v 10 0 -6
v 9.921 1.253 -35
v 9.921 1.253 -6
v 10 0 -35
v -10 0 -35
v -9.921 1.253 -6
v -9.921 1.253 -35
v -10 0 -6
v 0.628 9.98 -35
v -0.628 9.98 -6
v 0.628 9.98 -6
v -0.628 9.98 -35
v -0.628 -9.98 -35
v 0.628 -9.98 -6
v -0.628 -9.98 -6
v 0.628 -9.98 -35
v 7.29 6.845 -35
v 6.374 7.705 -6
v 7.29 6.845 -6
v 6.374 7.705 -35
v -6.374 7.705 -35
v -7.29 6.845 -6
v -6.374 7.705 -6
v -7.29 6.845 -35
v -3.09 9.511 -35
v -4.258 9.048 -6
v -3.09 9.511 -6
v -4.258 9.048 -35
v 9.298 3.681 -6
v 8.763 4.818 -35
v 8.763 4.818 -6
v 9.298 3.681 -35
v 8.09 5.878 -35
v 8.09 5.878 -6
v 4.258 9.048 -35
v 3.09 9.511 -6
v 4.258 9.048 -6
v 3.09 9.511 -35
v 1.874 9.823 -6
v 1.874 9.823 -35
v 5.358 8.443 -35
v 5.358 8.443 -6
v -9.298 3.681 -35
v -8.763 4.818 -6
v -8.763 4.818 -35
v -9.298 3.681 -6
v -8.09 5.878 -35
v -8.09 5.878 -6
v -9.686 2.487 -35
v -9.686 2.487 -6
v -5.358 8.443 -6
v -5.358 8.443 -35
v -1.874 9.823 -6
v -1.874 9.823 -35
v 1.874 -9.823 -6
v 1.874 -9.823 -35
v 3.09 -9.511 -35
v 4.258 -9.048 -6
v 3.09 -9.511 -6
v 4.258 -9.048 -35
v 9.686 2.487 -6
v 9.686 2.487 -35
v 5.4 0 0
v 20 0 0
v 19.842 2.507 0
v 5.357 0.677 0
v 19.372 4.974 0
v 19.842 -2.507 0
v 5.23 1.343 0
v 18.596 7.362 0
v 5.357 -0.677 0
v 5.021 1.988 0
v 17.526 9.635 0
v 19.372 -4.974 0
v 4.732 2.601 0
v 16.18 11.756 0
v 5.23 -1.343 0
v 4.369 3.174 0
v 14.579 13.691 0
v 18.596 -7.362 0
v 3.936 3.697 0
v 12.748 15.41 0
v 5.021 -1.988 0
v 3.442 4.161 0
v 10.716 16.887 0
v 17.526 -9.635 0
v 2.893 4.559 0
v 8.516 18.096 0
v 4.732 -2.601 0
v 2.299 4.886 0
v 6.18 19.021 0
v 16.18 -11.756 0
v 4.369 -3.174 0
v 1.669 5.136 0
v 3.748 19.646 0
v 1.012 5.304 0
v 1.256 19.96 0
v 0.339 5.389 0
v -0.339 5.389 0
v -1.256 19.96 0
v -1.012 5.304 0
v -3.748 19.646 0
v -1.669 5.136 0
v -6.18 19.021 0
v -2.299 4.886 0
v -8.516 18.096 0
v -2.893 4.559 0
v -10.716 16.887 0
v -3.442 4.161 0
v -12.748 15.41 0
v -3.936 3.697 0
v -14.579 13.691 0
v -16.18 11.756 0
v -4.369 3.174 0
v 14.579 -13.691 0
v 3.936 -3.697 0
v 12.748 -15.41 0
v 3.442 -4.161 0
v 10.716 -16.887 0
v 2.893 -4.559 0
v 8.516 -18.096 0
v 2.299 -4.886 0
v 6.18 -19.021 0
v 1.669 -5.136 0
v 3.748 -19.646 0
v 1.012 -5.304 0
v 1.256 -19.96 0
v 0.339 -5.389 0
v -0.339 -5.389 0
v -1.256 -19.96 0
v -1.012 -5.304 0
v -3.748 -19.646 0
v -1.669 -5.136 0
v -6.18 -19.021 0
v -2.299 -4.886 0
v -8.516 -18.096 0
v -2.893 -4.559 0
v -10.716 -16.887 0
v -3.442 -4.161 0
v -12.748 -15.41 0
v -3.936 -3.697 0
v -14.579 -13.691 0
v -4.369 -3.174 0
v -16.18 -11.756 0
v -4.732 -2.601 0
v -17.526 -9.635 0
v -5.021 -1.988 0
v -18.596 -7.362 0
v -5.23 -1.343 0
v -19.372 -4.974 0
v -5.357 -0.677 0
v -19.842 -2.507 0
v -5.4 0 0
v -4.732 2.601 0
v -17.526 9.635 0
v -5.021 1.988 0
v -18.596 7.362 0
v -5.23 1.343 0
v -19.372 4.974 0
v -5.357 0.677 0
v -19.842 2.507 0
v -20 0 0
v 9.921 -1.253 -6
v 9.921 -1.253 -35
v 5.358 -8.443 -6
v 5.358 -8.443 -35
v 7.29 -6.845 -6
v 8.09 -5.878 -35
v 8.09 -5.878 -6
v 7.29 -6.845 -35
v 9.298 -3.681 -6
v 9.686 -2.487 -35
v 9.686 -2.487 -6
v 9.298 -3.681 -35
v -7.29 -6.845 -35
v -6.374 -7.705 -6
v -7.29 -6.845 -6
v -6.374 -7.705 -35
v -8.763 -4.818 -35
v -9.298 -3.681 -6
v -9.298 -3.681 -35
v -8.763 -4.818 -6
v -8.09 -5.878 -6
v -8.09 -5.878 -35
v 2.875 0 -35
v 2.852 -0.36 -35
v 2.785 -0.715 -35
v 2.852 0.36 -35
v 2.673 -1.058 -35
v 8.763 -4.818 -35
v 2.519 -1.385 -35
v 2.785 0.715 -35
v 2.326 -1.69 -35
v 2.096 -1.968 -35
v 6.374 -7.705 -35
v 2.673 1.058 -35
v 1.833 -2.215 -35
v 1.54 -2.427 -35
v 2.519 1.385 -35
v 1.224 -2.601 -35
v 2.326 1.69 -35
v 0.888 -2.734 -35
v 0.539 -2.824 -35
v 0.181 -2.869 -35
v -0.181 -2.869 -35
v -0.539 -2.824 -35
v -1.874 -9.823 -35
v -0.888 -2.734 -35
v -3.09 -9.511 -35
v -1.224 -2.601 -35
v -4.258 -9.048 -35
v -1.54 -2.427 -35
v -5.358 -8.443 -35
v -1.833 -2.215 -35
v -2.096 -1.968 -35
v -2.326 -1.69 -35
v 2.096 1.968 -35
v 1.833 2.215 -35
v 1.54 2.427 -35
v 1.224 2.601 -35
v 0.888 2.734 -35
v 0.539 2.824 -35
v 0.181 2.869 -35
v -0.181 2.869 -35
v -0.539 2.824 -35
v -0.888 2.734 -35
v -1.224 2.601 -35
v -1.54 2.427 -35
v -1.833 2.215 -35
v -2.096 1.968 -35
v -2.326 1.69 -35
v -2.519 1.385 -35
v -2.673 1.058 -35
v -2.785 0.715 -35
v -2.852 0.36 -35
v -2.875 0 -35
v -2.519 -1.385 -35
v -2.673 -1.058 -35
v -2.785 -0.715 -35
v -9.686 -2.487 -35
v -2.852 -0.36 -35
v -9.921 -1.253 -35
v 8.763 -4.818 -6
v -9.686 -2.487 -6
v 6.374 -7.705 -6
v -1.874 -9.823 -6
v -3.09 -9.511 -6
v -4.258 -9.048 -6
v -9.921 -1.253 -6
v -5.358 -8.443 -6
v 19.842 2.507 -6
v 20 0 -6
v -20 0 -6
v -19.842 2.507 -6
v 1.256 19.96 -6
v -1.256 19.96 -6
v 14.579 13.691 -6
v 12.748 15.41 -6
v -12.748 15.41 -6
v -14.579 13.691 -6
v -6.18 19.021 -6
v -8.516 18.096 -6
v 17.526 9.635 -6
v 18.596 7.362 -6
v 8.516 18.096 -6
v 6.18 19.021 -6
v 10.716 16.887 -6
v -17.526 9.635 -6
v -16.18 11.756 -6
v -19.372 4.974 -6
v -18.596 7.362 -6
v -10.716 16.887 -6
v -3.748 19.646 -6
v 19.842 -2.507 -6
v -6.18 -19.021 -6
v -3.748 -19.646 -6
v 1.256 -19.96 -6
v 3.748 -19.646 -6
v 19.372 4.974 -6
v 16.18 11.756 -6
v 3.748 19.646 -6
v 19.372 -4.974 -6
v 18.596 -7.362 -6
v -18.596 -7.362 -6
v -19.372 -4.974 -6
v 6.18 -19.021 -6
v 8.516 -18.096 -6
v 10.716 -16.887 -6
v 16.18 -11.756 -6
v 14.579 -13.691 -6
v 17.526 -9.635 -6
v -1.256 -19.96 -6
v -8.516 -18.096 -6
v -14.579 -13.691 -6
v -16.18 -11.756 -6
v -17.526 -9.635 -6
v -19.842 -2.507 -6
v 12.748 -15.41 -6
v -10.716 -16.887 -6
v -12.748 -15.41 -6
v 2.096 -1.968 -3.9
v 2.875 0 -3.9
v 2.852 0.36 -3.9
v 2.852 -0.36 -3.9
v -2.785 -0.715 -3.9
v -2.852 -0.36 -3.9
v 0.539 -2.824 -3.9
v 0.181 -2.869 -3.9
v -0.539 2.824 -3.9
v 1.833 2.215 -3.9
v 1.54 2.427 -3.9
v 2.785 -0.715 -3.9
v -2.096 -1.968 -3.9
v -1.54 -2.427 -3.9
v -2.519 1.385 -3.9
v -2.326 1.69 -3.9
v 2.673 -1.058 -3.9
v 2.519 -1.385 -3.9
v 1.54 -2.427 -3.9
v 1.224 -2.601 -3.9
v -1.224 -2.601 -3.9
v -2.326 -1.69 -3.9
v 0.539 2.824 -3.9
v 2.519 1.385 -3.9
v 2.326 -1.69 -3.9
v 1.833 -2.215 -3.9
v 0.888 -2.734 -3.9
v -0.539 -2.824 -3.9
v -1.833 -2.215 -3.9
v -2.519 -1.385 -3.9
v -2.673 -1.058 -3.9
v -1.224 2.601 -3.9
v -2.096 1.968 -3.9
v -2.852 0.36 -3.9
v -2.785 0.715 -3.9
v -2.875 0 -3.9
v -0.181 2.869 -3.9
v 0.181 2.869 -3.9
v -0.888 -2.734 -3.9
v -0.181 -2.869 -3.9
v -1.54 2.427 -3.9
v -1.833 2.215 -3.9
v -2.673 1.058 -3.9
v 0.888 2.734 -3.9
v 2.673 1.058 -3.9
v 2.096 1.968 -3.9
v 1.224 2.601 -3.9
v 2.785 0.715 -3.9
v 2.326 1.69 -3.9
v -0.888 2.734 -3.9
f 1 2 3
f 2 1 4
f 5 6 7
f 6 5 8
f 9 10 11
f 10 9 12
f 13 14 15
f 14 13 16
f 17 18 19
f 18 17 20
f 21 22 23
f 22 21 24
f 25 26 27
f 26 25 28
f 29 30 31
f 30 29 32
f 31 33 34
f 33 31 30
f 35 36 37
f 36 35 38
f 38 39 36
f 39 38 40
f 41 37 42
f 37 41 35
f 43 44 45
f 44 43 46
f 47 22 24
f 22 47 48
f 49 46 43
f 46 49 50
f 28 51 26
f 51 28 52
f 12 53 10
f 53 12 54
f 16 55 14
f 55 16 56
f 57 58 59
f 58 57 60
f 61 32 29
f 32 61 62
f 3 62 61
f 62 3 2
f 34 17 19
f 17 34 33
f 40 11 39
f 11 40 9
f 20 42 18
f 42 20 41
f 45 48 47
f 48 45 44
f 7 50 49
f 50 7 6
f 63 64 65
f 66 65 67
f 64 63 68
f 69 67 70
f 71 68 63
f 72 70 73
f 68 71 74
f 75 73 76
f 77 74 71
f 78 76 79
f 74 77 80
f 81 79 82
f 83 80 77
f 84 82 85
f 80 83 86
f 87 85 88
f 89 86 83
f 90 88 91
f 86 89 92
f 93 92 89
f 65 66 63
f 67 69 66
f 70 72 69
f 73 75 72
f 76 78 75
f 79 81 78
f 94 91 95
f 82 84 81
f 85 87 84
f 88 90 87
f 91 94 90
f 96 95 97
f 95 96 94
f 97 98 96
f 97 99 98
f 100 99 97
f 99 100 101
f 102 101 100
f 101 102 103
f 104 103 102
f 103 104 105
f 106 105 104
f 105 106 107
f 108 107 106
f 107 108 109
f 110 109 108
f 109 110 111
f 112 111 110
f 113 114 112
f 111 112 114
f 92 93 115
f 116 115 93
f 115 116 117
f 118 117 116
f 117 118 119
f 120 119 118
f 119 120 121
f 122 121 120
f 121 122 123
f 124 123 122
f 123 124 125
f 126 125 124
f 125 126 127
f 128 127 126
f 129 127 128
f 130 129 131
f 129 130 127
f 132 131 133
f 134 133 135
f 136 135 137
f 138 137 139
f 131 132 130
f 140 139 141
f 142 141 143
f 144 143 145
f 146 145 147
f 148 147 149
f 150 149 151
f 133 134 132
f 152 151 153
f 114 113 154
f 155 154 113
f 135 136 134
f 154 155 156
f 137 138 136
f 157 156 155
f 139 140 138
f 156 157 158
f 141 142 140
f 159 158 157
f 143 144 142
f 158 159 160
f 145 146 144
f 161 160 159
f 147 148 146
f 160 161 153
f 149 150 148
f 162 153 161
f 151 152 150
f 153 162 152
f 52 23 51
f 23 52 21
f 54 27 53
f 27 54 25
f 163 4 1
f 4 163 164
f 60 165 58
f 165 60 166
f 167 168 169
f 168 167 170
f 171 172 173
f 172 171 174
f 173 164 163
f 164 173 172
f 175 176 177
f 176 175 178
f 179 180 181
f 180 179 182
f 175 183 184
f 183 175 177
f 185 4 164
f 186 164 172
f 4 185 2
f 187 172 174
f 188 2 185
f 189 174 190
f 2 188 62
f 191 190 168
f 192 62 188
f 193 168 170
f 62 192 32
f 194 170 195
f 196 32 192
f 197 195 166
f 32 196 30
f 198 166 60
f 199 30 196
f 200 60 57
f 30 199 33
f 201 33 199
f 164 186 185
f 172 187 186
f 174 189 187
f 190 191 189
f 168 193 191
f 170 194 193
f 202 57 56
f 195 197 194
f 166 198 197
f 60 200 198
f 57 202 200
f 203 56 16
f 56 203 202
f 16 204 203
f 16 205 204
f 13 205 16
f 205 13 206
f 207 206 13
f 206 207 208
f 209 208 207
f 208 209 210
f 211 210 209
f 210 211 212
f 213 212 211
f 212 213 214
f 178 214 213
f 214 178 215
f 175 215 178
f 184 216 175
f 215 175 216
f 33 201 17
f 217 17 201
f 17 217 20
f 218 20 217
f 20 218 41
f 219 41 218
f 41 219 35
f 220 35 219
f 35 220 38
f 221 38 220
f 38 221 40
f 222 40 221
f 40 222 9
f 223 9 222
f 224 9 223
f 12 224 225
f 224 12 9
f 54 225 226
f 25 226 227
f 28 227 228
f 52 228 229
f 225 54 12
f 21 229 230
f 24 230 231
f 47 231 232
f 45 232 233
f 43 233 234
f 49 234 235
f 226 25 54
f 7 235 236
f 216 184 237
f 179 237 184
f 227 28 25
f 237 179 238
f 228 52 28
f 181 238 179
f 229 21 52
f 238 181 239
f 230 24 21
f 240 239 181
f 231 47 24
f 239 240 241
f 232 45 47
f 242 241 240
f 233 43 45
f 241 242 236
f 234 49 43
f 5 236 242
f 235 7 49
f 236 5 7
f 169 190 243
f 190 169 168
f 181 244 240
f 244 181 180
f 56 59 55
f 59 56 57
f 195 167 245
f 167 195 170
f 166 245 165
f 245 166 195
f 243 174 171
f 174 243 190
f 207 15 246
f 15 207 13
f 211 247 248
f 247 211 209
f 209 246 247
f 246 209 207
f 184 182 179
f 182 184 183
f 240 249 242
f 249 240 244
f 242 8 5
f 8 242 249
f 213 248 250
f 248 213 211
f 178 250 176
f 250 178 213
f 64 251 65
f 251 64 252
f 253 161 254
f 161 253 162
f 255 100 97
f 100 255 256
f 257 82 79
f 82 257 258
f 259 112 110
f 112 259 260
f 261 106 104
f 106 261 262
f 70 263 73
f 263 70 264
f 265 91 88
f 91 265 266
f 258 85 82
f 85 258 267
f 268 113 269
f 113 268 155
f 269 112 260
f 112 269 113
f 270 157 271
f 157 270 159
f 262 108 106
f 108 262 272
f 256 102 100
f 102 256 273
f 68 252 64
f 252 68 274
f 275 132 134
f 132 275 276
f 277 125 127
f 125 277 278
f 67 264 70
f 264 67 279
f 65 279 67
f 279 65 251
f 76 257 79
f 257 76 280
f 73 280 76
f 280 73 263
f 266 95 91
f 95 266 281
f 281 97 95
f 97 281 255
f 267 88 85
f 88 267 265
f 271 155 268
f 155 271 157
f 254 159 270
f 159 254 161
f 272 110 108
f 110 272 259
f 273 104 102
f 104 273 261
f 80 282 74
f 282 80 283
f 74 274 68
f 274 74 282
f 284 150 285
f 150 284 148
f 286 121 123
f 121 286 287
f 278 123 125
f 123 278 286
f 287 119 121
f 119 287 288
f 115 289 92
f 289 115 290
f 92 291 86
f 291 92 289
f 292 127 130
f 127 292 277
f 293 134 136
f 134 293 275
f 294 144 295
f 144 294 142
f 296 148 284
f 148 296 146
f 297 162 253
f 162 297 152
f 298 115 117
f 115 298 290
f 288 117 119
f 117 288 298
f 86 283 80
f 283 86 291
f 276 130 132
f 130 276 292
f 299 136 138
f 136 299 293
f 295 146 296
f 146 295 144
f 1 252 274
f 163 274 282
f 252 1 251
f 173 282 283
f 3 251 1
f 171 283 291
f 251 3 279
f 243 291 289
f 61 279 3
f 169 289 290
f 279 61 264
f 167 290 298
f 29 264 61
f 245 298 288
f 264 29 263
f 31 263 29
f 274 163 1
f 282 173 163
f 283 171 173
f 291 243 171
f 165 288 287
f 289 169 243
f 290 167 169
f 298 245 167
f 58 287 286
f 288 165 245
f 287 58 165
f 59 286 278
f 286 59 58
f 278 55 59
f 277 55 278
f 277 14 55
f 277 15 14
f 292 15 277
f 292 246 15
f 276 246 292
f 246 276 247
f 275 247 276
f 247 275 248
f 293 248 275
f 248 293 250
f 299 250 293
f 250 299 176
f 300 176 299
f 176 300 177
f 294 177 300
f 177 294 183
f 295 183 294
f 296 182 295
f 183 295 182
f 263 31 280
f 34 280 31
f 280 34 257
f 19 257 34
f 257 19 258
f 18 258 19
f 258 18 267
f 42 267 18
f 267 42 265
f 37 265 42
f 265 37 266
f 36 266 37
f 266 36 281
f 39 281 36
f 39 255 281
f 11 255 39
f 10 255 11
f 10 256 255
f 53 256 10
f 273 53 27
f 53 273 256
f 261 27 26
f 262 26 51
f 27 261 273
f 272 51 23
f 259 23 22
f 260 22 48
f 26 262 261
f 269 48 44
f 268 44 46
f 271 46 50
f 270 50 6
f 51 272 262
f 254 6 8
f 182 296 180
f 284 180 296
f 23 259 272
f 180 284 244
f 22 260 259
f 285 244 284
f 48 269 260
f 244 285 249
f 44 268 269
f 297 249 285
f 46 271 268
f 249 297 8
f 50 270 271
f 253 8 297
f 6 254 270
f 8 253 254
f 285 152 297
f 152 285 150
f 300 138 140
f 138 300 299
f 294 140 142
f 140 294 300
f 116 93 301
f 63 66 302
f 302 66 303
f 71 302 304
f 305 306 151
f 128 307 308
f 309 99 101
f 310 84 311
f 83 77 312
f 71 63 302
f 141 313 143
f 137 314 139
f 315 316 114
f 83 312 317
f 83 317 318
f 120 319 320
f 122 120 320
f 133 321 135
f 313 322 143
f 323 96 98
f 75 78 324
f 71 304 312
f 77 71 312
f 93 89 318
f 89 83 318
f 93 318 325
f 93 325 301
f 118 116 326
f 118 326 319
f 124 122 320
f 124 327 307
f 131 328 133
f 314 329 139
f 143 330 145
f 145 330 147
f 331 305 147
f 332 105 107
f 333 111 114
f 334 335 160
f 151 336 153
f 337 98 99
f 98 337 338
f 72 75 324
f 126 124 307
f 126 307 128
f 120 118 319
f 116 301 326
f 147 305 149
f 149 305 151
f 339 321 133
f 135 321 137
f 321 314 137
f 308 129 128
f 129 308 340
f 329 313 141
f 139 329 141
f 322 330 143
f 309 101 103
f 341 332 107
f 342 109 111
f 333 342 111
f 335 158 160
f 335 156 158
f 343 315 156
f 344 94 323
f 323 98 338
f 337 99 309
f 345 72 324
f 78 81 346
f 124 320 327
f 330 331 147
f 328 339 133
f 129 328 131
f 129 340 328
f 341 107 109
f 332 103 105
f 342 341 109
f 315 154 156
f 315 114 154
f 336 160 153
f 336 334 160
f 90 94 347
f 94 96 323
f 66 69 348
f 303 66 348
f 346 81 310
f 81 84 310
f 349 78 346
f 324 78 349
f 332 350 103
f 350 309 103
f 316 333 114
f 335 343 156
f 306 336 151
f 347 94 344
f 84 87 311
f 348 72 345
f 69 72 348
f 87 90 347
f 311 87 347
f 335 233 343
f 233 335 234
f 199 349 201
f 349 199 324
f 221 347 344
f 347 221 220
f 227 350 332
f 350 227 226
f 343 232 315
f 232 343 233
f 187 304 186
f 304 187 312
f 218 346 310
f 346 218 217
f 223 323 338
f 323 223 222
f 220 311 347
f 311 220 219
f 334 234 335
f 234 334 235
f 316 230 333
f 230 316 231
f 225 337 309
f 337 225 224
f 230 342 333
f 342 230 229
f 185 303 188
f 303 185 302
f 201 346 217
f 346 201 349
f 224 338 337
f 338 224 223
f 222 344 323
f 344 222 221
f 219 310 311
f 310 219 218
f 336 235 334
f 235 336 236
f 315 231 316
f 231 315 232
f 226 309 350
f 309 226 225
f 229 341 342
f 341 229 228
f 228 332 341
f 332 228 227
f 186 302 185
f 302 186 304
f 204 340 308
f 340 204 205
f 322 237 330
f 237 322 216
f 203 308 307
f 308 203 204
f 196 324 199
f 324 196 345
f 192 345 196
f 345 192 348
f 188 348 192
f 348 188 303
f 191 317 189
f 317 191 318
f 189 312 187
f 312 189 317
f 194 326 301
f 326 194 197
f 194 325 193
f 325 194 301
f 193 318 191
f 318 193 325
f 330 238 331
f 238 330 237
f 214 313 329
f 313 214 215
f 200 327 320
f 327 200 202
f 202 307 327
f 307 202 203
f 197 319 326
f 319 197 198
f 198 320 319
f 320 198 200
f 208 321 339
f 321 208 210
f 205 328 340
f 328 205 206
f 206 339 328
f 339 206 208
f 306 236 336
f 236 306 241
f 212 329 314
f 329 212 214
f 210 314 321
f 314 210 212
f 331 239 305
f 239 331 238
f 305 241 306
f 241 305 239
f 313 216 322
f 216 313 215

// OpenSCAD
$fn = 50;


difference() {
	union() {
		translate(v = [0, 0, -35.0000000000]) {
			cylinder(h = 35, r = 10.0000000000);
		}
		translate(v = [0, 0, -6.0000000000]) {
			cylinder(h = 6, r = 20.0000000000);
		}
	}
	union() {
		translate(v = [0, 0, 0]) {
			rotate(a = [0, 0, 0]) {
				difference() {
					union() {
						#translate(v = [0, 0, -35.0000000000]) {
							cylinder(h = 35, r = 2.6000000000);
						}
						#translate(v = [0, 0, -3.9000000000]) {
							cylinder(h = 3.9000000000, r = 10.0000000000, r1 = 2.8750000000, r2 = 5.4000000000);
						}
						#translate(v = [0, 0, -35.0000000000]) {
							cylinder(h = 35, r = 2.8750000000);
						}
						#translate(v = [0, 0, -35.0000000000]) {
							cylinder(h = 35, r = 2.6000000000);
						}
					}
					union();
				}
			}
		}
	}
}
